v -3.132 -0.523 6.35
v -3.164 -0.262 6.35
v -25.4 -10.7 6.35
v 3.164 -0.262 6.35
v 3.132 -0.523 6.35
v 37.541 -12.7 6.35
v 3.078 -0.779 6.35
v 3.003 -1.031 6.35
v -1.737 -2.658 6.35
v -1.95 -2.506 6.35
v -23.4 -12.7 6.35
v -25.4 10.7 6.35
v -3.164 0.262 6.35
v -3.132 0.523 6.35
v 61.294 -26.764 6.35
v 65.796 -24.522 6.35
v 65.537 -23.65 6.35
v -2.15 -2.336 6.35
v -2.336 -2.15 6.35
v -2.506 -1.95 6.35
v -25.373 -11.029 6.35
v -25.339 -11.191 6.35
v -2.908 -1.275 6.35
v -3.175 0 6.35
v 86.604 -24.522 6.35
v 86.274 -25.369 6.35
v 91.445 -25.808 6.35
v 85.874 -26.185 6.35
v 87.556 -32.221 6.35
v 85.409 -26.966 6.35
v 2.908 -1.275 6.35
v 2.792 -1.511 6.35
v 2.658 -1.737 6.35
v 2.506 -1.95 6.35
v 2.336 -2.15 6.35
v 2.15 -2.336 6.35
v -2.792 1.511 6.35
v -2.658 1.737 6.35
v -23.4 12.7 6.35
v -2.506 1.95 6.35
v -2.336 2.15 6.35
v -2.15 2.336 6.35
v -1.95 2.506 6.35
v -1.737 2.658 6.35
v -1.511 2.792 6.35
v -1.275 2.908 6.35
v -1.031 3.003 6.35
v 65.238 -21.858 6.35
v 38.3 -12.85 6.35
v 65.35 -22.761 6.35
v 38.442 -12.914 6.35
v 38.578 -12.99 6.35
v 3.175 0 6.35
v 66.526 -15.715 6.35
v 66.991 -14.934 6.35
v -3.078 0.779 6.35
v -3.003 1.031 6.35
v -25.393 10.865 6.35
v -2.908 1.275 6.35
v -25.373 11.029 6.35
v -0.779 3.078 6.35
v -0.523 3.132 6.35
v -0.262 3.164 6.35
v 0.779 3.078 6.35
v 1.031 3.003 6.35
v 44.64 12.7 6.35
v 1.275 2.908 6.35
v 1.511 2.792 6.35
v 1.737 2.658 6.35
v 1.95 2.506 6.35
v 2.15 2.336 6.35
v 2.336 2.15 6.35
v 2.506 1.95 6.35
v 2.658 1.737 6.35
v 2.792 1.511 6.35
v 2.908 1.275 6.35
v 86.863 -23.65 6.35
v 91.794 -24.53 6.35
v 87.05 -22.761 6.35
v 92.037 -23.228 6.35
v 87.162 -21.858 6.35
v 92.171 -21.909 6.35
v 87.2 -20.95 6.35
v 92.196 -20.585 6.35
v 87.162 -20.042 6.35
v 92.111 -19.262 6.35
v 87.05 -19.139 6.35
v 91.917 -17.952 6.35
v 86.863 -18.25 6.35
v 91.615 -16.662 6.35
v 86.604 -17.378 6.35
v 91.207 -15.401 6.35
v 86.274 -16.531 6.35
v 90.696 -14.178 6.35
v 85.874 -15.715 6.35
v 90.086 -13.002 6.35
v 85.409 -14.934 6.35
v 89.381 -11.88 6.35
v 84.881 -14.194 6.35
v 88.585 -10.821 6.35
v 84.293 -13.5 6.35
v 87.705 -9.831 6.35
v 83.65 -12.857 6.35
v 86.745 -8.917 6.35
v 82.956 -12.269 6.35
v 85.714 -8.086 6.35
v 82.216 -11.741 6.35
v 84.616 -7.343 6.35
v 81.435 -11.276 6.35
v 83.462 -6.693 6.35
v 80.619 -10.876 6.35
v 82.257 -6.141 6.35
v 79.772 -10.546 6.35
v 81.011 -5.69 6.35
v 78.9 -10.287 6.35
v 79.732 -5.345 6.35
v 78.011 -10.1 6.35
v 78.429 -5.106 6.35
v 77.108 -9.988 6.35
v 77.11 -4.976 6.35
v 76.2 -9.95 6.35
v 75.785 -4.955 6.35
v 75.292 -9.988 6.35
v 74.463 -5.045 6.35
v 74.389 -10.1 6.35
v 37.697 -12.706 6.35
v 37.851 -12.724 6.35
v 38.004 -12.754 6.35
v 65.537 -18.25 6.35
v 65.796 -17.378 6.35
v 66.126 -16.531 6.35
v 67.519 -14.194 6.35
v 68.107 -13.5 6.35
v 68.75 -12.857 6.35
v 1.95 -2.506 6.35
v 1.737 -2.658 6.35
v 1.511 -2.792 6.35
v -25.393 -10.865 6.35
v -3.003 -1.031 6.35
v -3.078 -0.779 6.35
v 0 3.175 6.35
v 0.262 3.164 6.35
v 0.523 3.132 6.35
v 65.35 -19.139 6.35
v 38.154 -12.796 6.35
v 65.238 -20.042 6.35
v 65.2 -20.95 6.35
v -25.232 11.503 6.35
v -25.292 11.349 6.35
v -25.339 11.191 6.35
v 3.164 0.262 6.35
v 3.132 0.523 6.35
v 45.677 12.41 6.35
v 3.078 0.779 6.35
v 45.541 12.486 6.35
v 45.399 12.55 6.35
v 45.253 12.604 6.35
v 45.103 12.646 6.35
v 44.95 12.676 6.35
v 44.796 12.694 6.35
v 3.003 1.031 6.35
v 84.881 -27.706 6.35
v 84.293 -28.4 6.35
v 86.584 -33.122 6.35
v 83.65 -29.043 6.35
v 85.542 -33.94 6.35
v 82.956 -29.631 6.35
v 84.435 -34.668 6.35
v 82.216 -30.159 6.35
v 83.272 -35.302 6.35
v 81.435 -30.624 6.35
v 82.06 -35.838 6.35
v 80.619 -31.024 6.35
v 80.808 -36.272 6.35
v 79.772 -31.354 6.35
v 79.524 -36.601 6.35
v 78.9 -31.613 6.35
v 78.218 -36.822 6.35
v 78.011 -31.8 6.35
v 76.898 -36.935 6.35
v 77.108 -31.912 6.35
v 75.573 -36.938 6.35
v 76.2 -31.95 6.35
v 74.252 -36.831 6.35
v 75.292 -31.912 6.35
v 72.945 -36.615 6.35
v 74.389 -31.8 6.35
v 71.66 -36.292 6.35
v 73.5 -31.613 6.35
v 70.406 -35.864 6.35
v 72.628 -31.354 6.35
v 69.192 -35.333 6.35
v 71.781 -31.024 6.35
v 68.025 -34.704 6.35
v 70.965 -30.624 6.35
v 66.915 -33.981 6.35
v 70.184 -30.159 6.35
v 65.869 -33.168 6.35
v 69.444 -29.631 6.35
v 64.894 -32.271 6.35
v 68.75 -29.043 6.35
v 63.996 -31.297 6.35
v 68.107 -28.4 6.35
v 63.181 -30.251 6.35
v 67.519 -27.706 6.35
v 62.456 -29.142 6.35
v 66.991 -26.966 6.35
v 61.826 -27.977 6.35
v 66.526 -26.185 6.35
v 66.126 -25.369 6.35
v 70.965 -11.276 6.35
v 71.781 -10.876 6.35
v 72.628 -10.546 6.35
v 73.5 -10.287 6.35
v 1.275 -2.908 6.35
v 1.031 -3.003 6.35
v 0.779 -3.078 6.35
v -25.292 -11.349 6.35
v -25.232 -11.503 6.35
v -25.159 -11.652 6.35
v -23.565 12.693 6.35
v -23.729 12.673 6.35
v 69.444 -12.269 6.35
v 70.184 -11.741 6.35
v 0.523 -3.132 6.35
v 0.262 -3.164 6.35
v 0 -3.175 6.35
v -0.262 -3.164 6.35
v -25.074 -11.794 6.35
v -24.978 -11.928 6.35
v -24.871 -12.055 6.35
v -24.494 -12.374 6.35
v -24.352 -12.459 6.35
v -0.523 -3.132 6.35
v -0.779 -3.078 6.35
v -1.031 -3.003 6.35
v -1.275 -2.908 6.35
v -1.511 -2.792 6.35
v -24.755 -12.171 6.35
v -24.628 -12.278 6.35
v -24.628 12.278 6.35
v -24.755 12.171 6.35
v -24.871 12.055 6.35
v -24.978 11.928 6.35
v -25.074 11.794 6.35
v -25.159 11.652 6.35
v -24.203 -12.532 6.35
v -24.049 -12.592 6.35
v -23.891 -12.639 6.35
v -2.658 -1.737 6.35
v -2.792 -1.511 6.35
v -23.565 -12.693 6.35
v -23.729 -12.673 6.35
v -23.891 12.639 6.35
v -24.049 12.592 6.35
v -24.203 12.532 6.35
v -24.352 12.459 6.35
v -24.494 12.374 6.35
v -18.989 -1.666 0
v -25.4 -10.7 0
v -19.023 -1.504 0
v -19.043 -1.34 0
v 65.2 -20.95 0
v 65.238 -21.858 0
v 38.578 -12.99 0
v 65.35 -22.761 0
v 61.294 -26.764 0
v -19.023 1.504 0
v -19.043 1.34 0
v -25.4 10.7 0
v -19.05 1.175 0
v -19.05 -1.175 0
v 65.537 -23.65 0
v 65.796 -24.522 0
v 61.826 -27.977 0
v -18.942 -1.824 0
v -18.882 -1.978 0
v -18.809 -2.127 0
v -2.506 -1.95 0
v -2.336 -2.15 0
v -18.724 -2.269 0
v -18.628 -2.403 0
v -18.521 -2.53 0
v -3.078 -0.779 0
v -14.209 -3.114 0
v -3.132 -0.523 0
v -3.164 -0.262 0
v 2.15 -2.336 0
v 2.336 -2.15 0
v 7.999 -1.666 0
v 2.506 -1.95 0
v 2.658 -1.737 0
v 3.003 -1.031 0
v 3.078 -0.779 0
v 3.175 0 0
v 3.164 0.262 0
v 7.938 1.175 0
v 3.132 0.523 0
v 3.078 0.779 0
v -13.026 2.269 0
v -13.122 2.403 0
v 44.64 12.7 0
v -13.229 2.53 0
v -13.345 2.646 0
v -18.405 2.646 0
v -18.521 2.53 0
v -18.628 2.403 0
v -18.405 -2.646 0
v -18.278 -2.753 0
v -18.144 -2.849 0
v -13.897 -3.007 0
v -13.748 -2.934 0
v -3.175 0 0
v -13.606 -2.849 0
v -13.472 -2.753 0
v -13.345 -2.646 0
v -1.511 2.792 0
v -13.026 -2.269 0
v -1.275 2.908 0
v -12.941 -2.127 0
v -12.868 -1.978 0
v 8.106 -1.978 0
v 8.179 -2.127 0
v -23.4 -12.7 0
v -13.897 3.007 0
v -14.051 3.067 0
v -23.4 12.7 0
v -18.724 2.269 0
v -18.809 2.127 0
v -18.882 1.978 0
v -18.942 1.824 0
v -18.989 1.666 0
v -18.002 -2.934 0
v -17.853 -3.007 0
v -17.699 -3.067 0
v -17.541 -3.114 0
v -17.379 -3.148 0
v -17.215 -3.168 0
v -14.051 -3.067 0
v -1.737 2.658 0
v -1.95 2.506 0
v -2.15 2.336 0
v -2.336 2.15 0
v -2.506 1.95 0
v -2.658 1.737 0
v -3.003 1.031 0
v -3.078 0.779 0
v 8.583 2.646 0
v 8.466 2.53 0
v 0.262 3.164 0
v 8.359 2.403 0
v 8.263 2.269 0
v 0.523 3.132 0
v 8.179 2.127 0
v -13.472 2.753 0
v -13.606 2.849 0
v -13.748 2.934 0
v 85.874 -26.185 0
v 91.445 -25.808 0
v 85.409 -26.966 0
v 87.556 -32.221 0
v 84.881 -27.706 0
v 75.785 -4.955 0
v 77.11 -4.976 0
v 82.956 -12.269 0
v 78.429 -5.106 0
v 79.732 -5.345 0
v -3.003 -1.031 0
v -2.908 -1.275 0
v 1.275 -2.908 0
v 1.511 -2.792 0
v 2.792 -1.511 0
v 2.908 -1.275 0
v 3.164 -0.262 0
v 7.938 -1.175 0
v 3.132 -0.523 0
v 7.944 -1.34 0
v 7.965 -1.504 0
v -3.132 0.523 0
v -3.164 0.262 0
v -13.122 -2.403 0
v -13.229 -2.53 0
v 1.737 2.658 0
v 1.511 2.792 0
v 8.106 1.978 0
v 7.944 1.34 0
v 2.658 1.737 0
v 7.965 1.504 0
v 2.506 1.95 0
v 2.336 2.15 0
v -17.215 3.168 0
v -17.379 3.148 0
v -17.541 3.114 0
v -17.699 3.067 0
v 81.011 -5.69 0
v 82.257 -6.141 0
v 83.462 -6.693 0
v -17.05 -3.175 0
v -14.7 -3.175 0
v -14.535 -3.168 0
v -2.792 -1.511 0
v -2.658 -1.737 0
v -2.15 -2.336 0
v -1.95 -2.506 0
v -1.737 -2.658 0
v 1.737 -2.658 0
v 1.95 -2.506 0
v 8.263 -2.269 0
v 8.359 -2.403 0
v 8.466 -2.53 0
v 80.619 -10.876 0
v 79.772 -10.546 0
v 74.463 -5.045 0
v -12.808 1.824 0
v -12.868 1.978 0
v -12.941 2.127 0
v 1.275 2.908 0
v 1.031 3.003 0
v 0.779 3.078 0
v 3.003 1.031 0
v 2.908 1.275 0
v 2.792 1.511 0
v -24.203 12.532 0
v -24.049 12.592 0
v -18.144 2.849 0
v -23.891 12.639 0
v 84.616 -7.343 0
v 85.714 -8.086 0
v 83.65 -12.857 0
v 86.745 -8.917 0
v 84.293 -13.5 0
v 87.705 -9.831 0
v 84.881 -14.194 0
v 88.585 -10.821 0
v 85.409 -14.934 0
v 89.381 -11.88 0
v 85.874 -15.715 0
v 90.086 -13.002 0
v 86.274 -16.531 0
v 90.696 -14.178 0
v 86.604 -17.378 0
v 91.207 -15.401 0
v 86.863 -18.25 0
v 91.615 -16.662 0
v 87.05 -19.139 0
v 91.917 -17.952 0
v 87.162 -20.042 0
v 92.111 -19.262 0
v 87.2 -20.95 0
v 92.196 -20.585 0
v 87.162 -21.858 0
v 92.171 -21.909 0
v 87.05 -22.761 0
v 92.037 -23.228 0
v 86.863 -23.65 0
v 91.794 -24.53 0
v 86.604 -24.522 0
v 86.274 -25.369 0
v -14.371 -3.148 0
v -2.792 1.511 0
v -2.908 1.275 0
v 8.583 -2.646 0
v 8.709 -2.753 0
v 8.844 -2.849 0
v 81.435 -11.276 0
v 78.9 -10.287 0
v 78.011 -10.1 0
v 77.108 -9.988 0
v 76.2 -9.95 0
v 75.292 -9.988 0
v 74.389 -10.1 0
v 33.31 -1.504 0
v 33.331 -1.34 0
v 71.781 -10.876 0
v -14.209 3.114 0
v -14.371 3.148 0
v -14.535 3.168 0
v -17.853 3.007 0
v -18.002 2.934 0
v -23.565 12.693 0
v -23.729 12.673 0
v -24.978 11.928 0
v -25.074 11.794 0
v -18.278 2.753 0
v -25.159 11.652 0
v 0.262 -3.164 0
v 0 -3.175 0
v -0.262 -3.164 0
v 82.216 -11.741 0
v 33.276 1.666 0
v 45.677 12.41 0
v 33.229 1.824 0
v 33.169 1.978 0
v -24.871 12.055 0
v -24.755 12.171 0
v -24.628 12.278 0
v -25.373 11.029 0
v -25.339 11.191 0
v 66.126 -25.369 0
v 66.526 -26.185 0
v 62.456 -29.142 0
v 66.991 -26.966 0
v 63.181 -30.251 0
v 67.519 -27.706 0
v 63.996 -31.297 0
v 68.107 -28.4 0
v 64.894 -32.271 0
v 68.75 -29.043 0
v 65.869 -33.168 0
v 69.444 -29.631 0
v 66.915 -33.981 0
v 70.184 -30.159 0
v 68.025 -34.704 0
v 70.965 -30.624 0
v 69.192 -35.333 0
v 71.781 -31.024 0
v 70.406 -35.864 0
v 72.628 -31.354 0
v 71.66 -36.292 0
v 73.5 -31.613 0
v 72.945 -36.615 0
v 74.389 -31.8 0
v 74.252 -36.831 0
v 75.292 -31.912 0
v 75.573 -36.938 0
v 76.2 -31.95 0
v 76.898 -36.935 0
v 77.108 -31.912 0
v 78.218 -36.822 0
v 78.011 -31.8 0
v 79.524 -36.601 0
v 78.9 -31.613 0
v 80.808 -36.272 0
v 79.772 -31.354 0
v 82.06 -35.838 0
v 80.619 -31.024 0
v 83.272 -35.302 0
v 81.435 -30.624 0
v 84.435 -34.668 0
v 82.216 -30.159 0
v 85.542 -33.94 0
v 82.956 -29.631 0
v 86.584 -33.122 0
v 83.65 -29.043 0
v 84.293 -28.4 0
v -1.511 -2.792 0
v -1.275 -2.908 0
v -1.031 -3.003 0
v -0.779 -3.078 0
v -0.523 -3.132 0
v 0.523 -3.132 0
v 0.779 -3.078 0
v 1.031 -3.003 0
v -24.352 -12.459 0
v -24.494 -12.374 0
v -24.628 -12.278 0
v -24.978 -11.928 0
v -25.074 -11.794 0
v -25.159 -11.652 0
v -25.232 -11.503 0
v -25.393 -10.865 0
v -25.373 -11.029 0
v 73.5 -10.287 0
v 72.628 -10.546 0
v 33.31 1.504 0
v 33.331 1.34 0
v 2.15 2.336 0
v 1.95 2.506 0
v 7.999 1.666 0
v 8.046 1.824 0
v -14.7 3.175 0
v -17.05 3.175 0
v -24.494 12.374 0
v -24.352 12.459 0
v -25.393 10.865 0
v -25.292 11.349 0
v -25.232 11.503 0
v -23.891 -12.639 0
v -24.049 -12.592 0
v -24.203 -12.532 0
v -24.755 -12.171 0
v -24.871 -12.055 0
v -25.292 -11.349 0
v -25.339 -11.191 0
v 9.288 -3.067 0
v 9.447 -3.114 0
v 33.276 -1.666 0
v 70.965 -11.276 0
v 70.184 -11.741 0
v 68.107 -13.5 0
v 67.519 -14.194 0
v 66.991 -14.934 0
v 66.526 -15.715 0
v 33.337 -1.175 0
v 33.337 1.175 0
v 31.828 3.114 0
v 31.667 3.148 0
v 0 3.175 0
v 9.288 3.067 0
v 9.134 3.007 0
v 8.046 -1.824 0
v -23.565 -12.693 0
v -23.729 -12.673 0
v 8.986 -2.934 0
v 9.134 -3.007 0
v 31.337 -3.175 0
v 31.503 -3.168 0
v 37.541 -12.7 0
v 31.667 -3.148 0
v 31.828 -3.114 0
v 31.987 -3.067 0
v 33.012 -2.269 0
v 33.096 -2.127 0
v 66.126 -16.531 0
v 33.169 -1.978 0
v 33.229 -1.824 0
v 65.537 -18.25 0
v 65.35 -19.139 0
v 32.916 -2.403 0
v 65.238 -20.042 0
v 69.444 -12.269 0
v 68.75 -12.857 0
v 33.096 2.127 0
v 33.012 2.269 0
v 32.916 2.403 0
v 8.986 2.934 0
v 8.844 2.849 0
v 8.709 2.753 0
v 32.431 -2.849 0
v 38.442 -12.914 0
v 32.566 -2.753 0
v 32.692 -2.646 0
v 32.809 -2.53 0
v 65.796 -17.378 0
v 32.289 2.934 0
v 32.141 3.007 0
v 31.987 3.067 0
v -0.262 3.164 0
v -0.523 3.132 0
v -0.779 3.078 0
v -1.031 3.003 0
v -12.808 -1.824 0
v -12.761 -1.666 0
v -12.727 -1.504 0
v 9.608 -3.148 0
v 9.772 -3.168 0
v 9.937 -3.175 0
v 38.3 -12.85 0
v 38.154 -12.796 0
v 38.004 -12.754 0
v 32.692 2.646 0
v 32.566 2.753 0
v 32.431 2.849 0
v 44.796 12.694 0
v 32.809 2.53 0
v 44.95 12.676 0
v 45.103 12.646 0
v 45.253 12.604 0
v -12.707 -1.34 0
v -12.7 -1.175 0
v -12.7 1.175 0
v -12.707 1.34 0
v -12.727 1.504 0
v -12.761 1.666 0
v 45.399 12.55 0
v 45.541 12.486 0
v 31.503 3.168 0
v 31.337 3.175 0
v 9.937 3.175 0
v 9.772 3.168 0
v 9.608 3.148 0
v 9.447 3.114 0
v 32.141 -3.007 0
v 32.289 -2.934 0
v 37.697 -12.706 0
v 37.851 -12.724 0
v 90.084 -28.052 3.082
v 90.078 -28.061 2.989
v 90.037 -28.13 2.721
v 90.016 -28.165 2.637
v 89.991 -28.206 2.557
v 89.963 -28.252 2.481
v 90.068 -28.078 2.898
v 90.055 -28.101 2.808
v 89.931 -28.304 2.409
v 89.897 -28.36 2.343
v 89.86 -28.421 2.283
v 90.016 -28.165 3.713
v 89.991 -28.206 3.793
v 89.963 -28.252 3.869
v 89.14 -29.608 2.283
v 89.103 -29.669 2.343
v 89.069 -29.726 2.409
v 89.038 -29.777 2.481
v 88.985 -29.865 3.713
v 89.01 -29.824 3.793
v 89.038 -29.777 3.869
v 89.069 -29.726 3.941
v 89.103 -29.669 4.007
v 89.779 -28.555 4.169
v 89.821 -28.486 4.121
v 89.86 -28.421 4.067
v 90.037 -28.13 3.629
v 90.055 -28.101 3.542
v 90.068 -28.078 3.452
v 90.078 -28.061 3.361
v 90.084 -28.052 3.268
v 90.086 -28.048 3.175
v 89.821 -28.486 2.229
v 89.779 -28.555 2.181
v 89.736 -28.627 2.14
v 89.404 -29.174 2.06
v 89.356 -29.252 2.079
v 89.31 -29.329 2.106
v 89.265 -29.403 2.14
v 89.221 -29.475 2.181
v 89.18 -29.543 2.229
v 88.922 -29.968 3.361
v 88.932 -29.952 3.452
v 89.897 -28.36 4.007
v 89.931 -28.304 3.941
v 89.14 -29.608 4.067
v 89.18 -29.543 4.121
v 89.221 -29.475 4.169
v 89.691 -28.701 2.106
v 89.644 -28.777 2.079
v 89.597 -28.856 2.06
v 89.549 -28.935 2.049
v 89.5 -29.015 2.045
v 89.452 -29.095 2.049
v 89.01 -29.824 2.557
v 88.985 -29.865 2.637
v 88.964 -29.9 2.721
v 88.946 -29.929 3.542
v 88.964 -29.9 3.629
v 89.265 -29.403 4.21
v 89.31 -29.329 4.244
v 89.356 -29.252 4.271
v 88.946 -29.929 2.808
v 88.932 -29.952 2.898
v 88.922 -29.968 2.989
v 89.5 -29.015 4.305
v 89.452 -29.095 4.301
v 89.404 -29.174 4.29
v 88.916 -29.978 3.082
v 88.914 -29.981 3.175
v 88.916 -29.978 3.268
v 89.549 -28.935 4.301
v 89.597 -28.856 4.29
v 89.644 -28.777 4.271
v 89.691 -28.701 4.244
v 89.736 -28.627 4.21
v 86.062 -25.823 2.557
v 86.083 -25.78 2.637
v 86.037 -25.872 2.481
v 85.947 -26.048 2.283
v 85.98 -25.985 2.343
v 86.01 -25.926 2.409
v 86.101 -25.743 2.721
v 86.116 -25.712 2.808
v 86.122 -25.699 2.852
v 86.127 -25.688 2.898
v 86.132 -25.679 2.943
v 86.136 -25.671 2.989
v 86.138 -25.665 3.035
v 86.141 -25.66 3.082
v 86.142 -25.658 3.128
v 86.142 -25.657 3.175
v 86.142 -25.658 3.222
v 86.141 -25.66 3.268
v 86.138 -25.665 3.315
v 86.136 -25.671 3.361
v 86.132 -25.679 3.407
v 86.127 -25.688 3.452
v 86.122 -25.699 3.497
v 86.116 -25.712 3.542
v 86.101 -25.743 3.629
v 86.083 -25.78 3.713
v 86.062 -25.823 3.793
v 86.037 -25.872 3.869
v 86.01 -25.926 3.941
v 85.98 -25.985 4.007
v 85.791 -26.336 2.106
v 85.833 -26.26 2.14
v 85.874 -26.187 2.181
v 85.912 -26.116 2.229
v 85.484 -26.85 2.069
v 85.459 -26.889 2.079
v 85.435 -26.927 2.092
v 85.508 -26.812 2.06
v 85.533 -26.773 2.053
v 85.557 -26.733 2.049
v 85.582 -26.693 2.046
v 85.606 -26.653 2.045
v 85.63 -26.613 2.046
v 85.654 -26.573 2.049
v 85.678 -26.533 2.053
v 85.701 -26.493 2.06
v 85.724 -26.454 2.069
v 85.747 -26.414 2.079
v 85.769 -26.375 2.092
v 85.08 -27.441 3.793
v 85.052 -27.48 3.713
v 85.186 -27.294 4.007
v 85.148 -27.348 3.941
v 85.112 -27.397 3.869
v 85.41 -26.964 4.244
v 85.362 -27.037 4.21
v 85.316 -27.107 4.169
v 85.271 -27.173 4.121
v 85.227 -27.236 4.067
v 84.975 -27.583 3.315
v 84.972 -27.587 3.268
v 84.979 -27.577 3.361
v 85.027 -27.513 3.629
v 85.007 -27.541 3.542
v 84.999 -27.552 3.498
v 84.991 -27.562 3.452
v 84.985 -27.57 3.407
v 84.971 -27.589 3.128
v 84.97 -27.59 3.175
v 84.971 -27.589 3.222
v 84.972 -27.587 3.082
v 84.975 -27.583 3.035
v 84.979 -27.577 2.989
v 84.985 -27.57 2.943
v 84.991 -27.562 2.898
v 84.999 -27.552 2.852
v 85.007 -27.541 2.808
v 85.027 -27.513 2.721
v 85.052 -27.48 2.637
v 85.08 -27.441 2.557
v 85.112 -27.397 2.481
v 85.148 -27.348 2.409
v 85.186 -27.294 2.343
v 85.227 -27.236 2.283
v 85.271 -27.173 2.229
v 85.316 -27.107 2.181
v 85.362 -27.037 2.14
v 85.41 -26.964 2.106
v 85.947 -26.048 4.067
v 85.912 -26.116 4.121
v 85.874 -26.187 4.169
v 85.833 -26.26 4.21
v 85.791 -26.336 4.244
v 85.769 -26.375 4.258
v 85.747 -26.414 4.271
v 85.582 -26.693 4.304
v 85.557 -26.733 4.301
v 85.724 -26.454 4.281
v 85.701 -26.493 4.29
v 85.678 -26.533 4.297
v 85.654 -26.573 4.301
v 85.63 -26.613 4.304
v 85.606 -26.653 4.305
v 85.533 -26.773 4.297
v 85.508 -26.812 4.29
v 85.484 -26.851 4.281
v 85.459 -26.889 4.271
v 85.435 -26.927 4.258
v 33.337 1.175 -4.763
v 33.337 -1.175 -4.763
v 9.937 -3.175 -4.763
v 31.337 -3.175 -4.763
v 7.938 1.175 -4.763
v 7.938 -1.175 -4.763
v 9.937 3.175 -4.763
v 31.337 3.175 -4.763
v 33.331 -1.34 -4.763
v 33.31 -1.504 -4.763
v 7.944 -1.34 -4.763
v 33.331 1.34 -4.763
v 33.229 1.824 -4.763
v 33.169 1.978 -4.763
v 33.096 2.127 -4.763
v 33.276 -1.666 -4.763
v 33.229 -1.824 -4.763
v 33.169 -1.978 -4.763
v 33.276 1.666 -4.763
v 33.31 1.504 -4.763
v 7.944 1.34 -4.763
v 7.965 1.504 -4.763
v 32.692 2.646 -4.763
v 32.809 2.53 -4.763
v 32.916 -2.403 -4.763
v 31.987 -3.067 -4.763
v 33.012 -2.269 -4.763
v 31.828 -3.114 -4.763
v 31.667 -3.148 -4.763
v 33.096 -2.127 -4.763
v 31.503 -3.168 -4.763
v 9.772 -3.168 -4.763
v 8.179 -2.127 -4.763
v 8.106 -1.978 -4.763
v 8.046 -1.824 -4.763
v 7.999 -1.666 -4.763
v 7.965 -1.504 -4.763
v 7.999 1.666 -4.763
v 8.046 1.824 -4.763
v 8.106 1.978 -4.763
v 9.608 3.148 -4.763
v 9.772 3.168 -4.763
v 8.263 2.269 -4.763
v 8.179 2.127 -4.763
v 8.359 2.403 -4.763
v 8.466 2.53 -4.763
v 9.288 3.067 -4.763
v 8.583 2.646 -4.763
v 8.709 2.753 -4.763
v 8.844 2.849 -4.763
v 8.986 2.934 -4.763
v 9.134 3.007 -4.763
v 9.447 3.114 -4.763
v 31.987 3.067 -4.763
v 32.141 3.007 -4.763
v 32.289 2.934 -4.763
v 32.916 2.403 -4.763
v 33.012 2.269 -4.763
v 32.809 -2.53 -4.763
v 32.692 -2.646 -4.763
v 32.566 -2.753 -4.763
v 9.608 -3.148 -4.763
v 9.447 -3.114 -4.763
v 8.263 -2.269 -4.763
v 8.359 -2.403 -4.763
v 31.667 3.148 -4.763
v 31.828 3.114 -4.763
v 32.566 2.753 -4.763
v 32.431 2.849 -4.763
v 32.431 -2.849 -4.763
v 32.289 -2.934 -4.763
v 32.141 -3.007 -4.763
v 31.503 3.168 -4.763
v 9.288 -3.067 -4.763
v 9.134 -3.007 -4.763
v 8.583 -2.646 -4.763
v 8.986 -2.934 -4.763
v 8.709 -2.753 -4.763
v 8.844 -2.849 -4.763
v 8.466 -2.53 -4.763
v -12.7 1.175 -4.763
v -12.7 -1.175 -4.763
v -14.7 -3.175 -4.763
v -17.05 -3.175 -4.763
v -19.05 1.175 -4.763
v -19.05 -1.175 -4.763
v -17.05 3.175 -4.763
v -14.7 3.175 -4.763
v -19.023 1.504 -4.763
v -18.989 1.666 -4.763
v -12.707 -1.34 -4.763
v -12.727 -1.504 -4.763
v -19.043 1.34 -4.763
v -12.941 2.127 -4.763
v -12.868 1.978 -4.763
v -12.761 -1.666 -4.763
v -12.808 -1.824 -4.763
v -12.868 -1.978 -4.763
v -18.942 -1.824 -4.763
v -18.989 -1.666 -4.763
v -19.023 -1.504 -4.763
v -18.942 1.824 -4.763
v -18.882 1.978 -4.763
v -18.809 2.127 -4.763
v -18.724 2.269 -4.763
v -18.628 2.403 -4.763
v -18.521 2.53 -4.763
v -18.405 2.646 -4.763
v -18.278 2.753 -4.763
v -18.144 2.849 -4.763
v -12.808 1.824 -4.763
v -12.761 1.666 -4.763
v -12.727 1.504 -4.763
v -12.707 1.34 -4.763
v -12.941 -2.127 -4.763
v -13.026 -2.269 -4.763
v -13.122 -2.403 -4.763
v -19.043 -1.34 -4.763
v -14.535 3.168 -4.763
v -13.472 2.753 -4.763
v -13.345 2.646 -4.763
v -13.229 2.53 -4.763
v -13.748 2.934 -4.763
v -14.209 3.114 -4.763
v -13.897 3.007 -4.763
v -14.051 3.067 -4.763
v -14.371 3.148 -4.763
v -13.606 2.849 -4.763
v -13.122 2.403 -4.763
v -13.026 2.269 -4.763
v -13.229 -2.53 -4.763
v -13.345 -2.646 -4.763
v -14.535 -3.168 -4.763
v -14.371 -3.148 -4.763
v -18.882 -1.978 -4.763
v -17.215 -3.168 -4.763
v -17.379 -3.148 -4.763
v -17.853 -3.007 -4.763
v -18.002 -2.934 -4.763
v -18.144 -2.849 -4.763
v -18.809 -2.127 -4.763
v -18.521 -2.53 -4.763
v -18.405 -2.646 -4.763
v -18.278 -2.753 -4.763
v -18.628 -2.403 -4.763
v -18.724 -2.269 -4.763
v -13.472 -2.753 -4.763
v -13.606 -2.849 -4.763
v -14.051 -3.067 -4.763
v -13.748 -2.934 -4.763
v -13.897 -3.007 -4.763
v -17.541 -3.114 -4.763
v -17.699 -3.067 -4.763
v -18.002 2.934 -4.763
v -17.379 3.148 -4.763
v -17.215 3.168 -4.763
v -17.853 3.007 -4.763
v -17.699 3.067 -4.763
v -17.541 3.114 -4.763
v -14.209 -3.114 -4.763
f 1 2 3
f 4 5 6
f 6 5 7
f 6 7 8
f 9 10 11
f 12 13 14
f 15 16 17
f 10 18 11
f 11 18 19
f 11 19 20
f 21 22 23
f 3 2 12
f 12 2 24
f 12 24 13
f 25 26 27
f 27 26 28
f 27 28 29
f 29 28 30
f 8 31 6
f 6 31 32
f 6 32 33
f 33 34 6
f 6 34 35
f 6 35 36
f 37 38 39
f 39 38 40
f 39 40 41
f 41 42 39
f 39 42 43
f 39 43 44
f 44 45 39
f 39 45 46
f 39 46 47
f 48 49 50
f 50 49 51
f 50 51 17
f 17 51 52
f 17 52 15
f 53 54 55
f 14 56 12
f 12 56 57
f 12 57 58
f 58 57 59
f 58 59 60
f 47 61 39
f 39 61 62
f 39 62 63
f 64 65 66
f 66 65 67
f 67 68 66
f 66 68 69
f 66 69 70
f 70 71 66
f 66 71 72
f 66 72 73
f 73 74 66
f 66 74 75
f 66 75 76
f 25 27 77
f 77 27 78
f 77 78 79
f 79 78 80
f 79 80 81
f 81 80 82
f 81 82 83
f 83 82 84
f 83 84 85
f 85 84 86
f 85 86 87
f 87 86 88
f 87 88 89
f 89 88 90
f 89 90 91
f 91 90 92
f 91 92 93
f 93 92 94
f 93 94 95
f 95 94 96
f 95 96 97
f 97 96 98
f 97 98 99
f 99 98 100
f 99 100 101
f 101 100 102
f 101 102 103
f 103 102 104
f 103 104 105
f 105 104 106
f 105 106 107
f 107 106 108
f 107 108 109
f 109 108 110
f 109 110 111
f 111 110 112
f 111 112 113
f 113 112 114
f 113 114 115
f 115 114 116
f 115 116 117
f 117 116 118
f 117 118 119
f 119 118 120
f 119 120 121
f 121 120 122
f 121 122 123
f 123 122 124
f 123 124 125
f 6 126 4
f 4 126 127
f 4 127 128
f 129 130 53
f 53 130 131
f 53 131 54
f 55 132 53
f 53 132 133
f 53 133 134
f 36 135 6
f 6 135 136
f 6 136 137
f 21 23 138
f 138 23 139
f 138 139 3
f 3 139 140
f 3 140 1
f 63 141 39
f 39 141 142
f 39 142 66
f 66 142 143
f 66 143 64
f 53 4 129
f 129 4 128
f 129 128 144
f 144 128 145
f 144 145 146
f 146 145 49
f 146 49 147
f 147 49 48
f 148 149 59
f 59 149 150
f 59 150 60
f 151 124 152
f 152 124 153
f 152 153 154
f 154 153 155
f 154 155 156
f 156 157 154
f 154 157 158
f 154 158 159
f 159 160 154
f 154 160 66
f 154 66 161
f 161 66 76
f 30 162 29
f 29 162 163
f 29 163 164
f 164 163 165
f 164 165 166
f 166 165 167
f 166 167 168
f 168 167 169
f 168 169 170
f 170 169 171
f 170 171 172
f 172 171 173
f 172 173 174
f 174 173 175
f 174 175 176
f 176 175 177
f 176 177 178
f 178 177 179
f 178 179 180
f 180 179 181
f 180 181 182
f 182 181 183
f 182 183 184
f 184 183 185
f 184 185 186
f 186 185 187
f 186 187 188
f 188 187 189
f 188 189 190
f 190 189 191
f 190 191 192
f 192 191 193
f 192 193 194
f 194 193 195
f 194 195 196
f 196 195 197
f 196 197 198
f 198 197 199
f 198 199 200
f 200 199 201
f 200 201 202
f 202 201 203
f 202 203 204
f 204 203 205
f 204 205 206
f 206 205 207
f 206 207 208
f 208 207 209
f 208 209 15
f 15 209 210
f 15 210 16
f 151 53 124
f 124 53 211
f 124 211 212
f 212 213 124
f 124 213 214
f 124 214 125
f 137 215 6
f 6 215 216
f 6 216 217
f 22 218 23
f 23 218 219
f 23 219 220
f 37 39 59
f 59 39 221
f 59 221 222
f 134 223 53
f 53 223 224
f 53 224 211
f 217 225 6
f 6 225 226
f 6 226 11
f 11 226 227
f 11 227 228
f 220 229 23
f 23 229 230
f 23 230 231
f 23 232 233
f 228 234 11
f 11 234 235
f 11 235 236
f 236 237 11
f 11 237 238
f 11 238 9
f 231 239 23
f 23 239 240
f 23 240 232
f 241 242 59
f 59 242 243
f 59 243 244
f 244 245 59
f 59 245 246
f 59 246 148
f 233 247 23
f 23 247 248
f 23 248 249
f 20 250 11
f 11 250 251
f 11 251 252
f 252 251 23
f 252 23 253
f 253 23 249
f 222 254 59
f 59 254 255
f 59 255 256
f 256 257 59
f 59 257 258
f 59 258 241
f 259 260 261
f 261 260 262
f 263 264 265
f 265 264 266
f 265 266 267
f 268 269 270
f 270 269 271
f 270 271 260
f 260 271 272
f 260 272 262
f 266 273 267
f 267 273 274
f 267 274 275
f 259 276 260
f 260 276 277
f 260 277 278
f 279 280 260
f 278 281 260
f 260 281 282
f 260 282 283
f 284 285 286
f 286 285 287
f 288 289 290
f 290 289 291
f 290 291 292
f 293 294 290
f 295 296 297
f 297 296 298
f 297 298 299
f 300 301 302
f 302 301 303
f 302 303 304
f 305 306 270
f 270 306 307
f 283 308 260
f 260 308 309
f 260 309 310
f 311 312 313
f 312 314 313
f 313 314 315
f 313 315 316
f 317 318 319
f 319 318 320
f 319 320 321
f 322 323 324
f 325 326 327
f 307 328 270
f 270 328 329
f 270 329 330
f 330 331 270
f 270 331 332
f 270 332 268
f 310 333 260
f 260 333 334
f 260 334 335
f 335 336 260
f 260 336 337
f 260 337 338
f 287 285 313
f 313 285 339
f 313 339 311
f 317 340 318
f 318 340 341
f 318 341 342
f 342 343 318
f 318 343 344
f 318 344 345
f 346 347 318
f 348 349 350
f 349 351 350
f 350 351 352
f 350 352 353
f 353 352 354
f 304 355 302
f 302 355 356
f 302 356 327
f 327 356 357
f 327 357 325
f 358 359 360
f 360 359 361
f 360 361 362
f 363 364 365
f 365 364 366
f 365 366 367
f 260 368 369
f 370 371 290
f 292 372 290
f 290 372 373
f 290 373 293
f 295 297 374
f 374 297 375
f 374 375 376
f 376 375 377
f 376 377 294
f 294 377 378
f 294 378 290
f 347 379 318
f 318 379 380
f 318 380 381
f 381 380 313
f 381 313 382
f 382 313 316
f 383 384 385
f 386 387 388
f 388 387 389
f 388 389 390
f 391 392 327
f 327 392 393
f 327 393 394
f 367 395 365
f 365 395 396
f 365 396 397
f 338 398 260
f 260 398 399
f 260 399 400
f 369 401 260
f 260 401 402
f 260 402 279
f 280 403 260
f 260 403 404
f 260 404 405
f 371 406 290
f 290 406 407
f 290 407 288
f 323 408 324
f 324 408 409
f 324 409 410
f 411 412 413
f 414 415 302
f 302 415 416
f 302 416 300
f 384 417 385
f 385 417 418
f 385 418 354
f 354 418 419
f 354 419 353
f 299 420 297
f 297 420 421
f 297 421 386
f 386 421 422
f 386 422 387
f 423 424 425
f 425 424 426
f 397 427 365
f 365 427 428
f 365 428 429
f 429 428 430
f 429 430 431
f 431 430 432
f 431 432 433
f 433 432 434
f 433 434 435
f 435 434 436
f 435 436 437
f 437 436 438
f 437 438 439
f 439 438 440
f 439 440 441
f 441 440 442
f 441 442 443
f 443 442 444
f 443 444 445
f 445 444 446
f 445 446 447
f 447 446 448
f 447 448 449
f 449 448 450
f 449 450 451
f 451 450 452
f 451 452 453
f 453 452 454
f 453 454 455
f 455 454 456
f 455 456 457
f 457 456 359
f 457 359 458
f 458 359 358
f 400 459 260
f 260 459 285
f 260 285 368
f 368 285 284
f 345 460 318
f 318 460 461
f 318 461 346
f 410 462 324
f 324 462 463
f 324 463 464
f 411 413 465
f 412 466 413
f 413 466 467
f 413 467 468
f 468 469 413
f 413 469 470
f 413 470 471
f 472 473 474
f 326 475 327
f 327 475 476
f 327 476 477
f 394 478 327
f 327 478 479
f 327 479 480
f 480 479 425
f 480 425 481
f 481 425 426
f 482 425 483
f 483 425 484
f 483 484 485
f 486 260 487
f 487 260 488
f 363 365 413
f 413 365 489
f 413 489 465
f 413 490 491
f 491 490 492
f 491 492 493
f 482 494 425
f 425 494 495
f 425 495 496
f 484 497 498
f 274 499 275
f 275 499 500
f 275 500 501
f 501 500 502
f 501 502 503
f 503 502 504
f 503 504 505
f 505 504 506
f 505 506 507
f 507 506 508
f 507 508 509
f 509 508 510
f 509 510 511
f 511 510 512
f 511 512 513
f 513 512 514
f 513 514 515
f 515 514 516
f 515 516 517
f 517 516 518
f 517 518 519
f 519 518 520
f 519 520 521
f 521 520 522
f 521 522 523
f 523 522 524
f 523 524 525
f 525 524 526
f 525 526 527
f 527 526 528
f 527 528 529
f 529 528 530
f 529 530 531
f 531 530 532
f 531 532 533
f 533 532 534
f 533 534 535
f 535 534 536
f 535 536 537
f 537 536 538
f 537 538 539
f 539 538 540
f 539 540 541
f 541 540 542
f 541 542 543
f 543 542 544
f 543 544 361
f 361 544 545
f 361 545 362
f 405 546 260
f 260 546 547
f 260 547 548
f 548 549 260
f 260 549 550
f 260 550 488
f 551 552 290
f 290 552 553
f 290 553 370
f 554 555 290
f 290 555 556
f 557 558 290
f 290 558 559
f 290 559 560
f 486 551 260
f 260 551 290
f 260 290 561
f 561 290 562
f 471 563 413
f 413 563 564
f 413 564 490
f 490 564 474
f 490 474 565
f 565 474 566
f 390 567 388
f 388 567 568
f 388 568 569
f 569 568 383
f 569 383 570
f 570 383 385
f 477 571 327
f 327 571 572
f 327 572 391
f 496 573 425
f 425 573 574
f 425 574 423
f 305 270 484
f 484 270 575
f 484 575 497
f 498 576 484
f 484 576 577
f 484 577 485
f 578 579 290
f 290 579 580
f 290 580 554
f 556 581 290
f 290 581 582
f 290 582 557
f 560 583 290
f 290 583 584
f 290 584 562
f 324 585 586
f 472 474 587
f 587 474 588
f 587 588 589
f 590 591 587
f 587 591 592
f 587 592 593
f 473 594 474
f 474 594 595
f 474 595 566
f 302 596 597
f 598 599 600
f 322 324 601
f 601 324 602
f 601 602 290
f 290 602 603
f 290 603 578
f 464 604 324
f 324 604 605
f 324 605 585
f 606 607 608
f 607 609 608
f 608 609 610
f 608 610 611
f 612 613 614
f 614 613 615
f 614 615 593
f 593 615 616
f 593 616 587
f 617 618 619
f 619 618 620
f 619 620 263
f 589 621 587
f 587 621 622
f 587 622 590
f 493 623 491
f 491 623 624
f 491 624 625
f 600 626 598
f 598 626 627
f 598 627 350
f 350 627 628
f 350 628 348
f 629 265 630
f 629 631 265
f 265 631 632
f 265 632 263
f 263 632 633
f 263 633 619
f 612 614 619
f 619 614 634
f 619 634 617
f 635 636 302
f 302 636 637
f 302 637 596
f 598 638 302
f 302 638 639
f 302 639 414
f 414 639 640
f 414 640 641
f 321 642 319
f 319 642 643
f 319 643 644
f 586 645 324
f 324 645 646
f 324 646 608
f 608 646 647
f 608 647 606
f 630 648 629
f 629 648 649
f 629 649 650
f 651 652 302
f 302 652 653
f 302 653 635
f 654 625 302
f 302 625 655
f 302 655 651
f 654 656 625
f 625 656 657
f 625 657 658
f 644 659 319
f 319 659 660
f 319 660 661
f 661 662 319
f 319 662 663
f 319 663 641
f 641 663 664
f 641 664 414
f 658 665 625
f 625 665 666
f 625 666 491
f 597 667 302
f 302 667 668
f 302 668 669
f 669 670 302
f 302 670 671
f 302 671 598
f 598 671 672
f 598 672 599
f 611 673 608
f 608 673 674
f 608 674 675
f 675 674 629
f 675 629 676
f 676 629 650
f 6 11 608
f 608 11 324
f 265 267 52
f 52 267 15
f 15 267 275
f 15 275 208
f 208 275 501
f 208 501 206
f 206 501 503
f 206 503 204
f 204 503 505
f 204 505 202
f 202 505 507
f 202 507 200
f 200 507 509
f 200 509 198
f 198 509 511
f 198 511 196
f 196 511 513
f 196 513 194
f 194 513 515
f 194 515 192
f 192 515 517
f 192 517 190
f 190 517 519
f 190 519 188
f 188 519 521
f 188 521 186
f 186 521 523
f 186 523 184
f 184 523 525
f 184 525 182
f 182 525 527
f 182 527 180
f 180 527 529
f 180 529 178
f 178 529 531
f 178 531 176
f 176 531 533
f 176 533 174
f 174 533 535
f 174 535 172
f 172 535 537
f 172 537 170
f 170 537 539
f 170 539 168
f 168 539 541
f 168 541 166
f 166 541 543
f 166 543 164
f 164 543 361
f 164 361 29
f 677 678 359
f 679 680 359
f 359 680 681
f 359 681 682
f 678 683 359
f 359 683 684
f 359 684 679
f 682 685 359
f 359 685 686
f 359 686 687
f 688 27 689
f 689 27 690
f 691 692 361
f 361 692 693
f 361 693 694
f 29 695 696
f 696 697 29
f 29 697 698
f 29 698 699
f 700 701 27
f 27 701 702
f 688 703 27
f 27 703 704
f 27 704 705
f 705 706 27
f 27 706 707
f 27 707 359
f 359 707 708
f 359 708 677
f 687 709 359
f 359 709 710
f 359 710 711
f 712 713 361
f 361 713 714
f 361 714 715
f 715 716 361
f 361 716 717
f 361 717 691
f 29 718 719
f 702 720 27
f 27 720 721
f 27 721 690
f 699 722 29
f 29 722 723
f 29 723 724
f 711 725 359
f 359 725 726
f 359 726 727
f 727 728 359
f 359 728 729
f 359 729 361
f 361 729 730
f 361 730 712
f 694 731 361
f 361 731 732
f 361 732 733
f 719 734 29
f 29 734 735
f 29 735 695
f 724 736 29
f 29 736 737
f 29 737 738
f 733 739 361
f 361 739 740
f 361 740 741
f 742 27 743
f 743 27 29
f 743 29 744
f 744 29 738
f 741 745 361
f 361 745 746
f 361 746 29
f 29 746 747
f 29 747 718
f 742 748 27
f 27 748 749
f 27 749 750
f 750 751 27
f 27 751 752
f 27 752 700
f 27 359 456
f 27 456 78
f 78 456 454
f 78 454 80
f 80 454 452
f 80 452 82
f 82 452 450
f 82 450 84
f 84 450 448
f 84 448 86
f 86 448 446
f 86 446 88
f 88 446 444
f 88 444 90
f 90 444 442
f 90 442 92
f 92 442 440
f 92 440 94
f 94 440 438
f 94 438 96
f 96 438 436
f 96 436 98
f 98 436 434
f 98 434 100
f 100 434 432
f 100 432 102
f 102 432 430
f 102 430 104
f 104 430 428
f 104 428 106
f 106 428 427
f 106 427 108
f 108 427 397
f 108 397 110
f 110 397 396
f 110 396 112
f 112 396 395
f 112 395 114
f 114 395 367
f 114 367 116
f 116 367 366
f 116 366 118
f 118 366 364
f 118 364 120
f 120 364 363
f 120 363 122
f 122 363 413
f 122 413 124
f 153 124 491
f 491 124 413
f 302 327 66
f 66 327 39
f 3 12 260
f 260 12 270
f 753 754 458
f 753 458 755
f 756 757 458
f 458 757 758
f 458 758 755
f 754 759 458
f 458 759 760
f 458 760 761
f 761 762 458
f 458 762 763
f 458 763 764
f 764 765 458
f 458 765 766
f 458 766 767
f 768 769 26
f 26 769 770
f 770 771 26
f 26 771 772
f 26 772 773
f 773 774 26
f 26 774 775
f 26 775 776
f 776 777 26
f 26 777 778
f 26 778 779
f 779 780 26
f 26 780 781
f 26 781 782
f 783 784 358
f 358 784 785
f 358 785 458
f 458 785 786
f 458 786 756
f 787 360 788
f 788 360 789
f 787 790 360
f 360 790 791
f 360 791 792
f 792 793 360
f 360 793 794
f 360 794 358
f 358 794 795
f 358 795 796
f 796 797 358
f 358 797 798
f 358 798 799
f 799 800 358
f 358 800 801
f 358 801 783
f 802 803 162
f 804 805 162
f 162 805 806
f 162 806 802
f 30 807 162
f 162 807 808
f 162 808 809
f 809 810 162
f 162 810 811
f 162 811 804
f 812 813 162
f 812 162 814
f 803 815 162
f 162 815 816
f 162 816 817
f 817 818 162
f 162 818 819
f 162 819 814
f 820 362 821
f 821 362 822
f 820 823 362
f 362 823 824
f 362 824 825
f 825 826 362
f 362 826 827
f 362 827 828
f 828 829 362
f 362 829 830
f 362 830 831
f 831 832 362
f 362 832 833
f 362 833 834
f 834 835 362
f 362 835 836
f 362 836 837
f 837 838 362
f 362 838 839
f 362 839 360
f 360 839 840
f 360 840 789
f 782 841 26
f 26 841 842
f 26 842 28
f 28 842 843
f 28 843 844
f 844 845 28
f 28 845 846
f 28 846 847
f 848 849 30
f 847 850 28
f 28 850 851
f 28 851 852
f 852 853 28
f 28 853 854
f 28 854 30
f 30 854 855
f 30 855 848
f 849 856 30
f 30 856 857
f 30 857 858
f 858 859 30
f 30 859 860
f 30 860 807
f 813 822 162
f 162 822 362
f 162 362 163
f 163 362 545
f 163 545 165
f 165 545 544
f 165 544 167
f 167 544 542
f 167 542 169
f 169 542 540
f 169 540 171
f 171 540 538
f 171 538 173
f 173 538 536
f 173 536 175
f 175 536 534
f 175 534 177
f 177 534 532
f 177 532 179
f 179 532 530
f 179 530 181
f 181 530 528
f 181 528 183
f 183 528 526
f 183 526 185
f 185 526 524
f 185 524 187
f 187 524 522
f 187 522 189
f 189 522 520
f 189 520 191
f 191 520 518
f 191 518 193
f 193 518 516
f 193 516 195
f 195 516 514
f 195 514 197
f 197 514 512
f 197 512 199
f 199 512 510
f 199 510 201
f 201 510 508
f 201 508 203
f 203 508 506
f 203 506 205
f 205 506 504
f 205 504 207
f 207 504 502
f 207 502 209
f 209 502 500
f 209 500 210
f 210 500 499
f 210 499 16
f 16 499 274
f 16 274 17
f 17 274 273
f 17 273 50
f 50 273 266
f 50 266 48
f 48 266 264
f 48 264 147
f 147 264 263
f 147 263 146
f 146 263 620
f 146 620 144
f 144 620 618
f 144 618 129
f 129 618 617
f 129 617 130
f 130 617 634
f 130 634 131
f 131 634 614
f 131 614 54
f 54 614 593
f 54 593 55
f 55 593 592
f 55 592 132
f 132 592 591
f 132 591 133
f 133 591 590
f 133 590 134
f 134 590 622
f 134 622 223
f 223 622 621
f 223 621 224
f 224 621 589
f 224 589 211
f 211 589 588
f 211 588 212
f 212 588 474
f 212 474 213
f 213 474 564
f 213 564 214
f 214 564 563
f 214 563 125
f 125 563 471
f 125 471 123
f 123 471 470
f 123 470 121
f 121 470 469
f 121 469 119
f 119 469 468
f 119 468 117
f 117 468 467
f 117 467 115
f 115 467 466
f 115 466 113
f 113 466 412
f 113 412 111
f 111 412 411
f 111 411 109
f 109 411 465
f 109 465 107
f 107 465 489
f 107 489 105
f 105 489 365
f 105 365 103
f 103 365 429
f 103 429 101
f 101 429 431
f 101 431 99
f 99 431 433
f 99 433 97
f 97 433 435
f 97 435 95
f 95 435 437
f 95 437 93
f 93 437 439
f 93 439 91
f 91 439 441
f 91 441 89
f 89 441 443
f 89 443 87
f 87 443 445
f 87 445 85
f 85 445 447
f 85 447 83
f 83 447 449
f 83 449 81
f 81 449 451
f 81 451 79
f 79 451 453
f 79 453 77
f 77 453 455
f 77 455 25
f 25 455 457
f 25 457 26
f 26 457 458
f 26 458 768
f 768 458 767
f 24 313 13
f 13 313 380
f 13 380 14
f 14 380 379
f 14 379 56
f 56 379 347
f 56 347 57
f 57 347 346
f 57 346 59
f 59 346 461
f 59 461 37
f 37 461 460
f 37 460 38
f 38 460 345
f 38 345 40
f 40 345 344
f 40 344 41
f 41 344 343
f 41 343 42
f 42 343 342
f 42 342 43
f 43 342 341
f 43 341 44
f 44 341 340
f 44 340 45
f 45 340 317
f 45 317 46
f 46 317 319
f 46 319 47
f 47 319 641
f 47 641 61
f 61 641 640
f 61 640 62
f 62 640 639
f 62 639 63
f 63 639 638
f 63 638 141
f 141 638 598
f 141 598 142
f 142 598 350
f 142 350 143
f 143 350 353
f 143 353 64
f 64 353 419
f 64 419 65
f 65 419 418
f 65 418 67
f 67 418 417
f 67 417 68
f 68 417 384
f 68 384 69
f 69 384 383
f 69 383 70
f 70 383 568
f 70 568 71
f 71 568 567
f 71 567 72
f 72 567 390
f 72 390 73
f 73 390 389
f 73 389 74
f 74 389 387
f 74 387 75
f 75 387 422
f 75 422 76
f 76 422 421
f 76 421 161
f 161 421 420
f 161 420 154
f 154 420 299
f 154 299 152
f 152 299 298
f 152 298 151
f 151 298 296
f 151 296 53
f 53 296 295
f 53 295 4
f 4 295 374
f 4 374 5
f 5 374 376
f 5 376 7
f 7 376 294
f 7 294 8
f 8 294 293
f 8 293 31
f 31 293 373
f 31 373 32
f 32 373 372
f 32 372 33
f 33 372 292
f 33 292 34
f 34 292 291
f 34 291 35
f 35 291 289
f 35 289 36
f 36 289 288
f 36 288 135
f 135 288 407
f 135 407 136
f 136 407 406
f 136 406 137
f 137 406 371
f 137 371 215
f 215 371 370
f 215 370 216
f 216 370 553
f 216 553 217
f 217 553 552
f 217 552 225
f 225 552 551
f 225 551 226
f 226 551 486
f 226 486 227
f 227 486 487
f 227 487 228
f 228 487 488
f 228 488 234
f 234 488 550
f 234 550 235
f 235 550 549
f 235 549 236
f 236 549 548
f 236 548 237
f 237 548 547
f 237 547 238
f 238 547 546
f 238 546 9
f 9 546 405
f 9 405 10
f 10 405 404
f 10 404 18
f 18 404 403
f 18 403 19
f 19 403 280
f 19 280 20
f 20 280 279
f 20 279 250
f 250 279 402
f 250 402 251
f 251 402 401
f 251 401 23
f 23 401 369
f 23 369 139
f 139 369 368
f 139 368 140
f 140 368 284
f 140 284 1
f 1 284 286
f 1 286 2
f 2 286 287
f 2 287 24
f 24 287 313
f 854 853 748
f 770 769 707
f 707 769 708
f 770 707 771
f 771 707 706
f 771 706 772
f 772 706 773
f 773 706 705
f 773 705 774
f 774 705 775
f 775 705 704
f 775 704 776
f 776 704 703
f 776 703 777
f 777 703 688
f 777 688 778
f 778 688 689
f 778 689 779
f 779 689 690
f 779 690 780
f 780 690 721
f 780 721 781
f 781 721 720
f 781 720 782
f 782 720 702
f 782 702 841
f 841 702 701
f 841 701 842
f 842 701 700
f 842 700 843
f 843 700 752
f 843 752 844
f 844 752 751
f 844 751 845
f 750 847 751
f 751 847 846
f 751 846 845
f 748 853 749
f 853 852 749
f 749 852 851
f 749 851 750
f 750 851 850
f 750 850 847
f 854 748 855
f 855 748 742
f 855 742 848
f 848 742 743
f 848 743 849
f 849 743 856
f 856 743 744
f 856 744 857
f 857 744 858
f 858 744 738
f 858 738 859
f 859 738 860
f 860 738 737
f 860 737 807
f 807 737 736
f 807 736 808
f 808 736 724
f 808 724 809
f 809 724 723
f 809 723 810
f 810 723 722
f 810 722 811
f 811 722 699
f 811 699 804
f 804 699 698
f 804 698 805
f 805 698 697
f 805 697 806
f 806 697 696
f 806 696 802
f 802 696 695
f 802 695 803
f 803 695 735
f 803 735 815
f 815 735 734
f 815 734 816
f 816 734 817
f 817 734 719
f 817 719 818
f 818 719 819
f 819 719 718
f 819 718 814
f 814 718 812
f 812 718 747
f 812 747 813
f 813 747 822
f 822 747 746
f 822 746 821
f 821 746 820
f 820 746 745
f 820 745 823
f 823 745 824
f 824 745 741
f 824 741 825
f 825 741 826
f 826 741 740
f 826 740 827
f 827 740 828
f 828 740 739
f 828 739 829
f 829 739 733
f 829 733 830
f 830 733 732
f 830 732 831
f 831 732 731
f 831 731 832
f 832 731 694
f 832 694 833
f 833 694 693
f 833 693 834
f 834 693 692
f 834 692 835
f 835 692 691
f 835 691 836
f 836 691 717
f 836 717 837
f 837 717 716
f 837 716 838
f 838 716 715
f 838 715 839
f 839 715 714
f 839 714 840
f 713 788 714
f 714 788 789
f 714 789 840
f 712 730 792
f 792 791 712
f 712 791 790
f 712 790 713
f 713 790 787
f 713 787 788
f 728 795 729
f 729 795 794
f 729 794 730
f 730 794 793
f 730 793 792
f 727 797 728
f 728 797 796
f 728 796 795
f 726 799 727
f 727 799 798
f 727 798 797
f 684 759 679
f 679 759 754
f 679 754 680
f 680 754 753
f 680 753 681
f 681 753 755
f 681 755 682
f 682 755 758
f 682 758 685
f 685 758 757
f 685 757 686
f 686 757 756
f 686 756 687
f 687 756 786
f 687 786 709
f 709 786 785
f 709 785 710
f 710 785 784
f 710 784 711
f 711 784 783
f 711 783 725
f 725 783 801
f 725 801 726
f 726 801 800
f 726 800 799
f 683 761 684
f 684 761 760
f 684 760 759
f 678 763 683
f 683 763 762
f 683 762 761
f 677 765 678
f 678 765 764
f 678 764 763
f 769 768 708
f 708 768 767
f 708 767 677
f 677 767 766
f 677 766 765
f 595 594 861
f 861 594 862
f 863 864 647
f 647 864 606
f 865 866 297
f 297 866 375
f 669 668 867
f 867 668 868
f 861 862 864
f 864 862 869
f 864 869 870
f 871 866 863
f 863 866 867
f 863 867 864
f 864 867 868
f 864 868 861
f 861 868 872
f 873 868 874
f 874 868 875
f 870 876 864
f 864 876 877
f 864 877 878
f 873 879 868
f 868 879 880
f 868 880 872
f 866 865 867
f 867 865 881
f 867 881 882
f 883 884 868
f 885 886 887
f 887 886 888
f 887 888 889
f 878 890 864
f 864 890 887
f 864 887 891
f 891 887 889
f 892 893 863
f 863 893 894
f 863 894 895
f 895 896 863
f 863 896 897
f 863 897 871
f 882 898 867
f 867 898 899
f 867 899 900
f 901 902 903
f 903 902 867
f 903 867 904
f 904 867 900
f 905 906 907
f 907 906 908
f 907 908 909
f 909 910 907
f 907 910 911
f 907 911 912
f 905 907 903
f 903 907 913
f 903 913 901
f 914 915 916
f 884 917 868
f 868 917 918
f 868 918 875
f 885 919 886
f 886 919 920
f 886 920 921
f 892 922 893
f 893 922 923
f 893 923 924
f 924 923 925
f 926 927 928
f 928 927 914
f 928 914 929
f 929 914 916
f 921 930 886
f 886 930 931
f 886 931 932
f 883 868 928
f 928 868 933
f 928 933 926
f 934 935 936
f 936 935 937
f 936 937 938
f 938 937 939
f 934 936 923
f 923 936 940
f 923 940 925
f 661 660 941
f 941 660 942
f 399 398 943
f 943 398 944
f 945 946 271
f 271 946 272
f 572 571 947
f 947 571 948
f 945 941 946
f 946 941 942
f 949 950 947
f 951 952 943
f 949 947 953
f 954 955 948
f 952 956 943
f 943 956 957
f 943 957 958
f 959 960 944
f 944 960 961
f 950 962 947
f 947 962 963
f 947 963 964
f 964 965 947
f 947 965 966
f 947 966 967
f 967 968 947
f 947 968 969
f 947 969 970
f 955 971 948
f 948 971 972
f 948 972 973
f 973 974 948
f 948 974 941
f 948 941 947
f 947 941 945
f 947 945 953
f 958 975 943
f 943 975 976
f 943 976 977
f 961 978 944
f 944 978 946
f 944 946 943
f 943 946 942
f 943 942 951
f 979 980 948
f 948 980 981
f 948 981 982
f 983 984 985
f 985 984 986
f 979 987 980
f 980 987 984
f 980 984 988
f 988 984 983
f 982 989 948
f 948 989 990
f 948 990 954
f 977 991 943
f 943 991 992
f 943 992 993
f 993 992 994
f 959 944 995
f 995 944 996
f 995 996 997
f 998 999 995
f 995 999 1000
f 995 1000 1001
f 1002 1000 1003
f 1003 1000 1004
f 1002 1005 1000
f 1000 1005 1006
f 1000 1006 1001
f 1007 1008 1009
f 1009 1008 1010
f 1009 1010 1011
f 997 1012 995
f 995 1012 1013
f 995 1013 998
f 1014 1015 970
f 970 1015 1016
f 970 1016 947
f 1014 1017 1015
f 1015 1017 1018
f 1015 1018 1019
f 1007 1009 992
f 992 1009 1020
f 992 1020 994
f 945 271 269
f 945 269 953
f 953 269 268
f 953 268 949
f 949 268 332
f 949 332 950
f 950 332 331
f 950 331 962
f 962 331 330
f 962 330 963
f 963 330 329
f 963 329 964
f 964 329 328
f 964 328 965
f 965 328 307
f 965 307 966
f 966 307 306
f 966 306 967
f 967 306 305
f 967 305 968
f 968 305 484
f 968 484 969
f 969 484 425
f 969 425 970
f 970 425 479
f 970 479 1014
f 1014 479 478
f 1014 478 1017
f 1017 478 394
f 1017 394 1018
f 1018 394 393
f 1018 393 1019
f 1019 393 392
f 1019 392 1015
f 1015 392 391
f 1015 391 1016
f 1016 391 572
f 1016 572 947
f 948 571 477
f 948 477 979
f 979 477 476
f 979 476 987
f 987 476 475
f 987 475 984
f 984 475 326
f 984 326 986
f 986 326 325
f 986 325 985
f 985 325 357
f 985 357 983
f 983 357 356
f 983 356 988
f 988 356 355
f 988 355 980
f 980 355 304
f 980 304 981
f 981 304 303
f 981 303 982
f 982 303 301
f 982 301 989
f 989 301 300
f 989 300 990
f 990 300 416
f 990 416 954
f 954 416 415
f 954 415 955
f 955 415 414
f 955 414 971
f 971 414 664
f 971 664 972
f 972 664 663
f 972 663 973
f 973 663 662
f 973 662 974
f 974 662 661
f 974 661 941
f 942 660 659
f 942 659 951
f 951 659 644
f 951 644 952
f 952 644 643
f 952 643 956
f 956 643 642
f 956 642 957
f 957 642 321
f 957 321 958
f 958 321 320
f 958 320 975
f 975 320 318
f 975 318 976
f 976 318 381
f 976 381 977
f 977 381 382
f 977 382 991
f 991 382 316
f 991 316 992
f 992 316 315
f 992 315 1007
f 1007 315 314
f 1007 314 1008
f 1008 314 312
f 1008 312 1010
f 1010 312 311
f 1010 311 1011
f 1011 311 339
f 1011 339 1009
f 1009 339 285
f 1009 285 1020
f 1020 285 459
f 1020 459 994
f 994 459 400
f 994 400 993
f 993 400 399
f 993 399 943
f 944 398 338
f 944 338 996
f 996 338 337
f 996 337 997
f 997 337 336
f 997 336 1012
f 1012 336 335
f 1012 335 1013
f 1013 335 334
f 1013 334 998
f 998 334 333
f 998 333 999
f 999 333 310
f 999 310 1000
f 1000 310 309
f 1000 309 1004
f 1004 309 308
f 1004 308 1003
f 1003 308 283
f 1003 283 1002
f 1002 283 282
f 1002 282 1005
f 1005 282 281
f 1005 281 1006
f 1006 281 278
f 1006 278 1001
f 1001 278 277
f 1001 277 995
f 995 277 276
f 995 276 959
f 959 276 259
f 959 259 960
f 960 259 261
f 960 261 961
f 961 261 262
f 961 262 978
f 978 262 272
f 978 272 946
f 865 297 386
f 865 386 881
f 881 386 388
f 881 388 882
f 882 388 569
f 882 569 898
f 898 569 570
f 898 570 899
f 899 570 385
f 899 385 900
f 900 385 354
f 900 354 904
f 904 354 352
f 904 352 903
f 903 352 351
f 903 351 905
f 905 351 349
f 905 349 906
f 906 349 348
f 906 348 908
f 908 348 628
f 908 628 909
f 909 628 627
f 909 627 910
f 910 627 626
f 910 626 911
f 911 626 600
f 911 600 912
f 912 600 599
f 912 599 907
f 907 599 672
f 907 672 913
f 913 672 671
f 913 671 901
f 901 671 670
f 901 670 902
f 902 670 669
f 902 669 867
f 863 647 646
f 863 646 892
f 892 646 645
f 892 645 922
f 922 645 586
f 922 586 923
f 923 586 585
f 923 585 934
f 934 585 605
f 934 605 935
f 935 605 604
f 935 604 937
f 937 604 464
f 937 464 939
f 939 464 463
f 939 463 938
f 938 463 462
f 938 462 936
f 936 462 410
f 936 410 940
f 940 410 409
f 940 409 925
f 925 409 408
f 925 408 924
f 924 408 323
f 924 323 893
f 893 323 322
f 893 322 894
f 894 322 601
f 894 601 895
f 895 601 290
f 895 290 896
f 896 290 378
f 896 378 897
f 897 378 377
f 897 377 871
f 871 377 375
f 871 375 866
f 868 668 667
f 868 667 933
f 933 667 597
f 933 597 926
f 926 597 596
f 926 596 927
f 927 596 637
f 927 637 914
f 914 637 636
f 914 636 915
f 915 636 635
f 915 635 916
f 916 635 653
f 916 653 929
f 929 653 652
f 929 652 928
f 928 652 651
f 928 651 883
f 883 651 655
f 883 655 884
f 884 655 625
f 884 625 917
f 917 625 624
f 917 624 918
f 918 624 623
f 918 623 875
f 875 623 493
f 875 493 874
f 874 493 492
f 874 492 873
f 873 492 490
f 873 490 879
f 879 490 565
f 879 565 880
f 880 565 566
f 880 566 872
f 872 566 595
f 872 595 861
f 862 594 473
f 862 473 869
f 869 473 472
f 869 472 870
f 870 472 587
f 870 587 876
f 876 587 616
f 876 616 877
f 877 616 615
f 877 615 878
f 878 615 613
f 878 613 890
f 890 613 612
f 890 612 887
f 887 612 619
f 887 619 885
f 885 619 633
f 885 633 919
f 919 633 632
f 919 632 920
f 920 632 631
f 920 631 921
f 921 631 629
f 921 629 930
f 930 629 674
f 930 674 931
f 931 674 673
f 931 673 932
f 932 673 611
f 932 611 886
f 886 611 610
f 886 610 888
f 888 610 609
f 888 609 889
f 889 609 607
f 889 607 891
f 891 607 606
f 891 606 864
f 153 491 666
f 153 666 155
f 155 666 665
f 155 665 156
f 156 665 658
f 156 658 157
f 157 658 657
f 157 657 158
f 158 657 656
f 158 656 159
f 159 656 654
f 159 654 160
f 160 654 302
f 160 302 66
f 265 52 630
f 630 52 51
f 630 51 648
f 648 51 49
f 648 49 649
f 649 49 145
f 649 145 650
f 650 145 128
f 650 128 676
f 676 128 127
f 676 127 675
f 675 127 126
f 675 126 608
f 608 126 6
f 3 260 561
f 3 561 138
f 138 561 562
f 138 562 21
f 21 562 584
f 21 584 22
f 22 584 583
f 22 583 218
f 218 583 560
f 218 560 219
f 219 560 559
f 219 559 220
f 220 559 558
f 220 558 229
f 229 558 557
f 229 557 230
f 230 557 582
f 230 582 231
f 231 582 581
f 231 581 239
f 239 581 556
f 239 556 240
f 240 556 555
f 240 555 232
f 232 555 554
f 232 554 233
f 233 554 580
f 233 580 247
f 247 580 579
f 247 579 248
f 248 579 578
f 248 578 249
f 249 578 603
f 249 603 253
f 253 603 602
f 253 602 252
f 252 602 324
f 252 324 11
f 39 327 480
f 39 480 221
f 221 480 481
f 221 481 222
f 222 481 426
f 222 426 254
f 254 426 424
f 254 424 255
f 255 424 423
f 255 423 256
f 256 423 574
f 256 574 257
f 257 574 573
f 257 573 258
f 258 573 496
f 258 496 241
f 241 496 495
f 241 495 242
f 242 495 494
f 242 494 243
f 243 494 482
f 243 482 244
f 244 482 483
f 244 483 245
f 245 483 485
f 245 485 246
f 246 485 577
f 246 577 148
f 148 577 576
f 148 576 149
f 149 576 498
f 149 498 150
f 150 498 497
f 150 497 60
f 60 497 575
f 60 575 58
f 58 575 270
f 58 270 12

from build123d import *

# Parameters (mm, degrees)
SKETCH1_R               = 3.175
SKETCH1_R_2             = 11
BOSS_EXTRUDE1_DEPTH     = 6.35
CUT_EXTRUDE1_REACH      = 122.068
CUT_EXTRUDE1_END_RADIUS = 11
SKETCH2_R               = 1.1303
SKETCH3_W               = 25.4
SKETCH3_H               = 6.35
SKETCH3_W_2             = 6.35
BOSS_EXTRUDE2_DEPTH     = 4.7625
FILLET3_R               = 2


with BuildPart() as part:
    # Sketch1 → Boss-Extrude1 (new body)
    with BuildSketch(Plane.XY):
        with BuildLine():
            Line((-25.4, -12.7), (-25.4, 12.7))
            Line((-25.4, 12.7), (45.199208724, 12.7))
            Line((45.199208724, 12.7), (74.463216326, -5.044542368))
            ThreePointArc((74.463216326, -5.044542368), (88.585378941, -10.82071629), (91.444603929, -25.808194216))
            Line((91.444603929, -25.808194216), (87.555933896, -32.221324916))
            ThreePointArc((87.555933896, -32.221324916), (72.944550454, -36.615313538), (61.293587146, -26.763678338))
            Line((61.293587146, -26.763678338), (38.1, -12.7))
            Line((38.1, -12.7), (-25.4, -12.7))
        make_face()
        Circle(SKETCH1_R, mode=Mode.SUBTRACT)
        with Locations((76.2, -20.95)):
            Circle(SKETCH1_R_2, mode=Mode.SUBTRACT)
    extrude(amount=BOSS_EXTRUDE1_DEPTH)

    # Cut-Extrude1: up to this cylinder (the profile starts outside it)
    cut_extrude1_end = Plane(origin=(76.2, -20.95, 3.175), z_dir=(0, 0, -1)) * Cylinder(CUT_EXTRUDE1_END_RADIUS, 267.136, mode=Mode.PRIVATE)
    # Sketch2 → Cut-Extrude1 (cut, up to the surface)
    with BuildSketch(Plane(origin=(78.303556067, -47.480194346, 0), x_dir=(0, 0, -1), z_dir=(0.8550840932924629, -0.5184893377864258, 0)), mode=Mode.PRIVATE) as cut_extrude1_sk1:
        with Locations(Location((-3.175, 21.594875785, 0), (0, 0, 90))):
            Circle(SKETCH2_R)
    cut_extrude1_tool1 = extrude(cut_extrude1_sk1.sketch, amount=-CUT_EXTRUDE1_REACH, mode=Mode.PRIVATE) - cut_extrude1_end
    add(cut_extrude1_tool1.solids().sort_by_distance((89.500269, -29.01476, 3.175))[0], mode=Mode.SUBTRACT)

    # Sketch3 → Boss-Extrude2 (add)
    with BuildSketch(Plane.XY):
        with Locations((20.6375, 0)):
            Rectangle(SKETCH3_W, SKETCH3_H)
        with Locations((-15.875, 0)):
            Rectangle(SKETCH3_W_2, SKETCH3_H)
    extrude(amount=-BOSS_EXTRUDE2_DEPTH)

    # Fillet3
    fillet3_edges = [part.edges().sort_by_distance(p)[0] for p in [
        (-25.4, -12.7, 3.175),
        (-25.4, 12.7, 3.175),
        (45.199208724, 12.7, 3.175),
        (38.1, -12.7, 3.175),
        (33.3375, 3.175, -2.38125),
        (33.3375, -3.175, -2.38125),
        (7.9375, -3.175, -2.38125),
        (7.9375, 3.175, -2.38125),
        (-12.7, 3.175, -2.38125),
        (-12.7, -3.175, -2.38125),
        (-19.05, -3.175, -2.38125),
        (-19.05, 3.175, -2.38125),
    ]]
    fillet(fillet3_edges, radius=FILLET3_R)


solid = part.part
